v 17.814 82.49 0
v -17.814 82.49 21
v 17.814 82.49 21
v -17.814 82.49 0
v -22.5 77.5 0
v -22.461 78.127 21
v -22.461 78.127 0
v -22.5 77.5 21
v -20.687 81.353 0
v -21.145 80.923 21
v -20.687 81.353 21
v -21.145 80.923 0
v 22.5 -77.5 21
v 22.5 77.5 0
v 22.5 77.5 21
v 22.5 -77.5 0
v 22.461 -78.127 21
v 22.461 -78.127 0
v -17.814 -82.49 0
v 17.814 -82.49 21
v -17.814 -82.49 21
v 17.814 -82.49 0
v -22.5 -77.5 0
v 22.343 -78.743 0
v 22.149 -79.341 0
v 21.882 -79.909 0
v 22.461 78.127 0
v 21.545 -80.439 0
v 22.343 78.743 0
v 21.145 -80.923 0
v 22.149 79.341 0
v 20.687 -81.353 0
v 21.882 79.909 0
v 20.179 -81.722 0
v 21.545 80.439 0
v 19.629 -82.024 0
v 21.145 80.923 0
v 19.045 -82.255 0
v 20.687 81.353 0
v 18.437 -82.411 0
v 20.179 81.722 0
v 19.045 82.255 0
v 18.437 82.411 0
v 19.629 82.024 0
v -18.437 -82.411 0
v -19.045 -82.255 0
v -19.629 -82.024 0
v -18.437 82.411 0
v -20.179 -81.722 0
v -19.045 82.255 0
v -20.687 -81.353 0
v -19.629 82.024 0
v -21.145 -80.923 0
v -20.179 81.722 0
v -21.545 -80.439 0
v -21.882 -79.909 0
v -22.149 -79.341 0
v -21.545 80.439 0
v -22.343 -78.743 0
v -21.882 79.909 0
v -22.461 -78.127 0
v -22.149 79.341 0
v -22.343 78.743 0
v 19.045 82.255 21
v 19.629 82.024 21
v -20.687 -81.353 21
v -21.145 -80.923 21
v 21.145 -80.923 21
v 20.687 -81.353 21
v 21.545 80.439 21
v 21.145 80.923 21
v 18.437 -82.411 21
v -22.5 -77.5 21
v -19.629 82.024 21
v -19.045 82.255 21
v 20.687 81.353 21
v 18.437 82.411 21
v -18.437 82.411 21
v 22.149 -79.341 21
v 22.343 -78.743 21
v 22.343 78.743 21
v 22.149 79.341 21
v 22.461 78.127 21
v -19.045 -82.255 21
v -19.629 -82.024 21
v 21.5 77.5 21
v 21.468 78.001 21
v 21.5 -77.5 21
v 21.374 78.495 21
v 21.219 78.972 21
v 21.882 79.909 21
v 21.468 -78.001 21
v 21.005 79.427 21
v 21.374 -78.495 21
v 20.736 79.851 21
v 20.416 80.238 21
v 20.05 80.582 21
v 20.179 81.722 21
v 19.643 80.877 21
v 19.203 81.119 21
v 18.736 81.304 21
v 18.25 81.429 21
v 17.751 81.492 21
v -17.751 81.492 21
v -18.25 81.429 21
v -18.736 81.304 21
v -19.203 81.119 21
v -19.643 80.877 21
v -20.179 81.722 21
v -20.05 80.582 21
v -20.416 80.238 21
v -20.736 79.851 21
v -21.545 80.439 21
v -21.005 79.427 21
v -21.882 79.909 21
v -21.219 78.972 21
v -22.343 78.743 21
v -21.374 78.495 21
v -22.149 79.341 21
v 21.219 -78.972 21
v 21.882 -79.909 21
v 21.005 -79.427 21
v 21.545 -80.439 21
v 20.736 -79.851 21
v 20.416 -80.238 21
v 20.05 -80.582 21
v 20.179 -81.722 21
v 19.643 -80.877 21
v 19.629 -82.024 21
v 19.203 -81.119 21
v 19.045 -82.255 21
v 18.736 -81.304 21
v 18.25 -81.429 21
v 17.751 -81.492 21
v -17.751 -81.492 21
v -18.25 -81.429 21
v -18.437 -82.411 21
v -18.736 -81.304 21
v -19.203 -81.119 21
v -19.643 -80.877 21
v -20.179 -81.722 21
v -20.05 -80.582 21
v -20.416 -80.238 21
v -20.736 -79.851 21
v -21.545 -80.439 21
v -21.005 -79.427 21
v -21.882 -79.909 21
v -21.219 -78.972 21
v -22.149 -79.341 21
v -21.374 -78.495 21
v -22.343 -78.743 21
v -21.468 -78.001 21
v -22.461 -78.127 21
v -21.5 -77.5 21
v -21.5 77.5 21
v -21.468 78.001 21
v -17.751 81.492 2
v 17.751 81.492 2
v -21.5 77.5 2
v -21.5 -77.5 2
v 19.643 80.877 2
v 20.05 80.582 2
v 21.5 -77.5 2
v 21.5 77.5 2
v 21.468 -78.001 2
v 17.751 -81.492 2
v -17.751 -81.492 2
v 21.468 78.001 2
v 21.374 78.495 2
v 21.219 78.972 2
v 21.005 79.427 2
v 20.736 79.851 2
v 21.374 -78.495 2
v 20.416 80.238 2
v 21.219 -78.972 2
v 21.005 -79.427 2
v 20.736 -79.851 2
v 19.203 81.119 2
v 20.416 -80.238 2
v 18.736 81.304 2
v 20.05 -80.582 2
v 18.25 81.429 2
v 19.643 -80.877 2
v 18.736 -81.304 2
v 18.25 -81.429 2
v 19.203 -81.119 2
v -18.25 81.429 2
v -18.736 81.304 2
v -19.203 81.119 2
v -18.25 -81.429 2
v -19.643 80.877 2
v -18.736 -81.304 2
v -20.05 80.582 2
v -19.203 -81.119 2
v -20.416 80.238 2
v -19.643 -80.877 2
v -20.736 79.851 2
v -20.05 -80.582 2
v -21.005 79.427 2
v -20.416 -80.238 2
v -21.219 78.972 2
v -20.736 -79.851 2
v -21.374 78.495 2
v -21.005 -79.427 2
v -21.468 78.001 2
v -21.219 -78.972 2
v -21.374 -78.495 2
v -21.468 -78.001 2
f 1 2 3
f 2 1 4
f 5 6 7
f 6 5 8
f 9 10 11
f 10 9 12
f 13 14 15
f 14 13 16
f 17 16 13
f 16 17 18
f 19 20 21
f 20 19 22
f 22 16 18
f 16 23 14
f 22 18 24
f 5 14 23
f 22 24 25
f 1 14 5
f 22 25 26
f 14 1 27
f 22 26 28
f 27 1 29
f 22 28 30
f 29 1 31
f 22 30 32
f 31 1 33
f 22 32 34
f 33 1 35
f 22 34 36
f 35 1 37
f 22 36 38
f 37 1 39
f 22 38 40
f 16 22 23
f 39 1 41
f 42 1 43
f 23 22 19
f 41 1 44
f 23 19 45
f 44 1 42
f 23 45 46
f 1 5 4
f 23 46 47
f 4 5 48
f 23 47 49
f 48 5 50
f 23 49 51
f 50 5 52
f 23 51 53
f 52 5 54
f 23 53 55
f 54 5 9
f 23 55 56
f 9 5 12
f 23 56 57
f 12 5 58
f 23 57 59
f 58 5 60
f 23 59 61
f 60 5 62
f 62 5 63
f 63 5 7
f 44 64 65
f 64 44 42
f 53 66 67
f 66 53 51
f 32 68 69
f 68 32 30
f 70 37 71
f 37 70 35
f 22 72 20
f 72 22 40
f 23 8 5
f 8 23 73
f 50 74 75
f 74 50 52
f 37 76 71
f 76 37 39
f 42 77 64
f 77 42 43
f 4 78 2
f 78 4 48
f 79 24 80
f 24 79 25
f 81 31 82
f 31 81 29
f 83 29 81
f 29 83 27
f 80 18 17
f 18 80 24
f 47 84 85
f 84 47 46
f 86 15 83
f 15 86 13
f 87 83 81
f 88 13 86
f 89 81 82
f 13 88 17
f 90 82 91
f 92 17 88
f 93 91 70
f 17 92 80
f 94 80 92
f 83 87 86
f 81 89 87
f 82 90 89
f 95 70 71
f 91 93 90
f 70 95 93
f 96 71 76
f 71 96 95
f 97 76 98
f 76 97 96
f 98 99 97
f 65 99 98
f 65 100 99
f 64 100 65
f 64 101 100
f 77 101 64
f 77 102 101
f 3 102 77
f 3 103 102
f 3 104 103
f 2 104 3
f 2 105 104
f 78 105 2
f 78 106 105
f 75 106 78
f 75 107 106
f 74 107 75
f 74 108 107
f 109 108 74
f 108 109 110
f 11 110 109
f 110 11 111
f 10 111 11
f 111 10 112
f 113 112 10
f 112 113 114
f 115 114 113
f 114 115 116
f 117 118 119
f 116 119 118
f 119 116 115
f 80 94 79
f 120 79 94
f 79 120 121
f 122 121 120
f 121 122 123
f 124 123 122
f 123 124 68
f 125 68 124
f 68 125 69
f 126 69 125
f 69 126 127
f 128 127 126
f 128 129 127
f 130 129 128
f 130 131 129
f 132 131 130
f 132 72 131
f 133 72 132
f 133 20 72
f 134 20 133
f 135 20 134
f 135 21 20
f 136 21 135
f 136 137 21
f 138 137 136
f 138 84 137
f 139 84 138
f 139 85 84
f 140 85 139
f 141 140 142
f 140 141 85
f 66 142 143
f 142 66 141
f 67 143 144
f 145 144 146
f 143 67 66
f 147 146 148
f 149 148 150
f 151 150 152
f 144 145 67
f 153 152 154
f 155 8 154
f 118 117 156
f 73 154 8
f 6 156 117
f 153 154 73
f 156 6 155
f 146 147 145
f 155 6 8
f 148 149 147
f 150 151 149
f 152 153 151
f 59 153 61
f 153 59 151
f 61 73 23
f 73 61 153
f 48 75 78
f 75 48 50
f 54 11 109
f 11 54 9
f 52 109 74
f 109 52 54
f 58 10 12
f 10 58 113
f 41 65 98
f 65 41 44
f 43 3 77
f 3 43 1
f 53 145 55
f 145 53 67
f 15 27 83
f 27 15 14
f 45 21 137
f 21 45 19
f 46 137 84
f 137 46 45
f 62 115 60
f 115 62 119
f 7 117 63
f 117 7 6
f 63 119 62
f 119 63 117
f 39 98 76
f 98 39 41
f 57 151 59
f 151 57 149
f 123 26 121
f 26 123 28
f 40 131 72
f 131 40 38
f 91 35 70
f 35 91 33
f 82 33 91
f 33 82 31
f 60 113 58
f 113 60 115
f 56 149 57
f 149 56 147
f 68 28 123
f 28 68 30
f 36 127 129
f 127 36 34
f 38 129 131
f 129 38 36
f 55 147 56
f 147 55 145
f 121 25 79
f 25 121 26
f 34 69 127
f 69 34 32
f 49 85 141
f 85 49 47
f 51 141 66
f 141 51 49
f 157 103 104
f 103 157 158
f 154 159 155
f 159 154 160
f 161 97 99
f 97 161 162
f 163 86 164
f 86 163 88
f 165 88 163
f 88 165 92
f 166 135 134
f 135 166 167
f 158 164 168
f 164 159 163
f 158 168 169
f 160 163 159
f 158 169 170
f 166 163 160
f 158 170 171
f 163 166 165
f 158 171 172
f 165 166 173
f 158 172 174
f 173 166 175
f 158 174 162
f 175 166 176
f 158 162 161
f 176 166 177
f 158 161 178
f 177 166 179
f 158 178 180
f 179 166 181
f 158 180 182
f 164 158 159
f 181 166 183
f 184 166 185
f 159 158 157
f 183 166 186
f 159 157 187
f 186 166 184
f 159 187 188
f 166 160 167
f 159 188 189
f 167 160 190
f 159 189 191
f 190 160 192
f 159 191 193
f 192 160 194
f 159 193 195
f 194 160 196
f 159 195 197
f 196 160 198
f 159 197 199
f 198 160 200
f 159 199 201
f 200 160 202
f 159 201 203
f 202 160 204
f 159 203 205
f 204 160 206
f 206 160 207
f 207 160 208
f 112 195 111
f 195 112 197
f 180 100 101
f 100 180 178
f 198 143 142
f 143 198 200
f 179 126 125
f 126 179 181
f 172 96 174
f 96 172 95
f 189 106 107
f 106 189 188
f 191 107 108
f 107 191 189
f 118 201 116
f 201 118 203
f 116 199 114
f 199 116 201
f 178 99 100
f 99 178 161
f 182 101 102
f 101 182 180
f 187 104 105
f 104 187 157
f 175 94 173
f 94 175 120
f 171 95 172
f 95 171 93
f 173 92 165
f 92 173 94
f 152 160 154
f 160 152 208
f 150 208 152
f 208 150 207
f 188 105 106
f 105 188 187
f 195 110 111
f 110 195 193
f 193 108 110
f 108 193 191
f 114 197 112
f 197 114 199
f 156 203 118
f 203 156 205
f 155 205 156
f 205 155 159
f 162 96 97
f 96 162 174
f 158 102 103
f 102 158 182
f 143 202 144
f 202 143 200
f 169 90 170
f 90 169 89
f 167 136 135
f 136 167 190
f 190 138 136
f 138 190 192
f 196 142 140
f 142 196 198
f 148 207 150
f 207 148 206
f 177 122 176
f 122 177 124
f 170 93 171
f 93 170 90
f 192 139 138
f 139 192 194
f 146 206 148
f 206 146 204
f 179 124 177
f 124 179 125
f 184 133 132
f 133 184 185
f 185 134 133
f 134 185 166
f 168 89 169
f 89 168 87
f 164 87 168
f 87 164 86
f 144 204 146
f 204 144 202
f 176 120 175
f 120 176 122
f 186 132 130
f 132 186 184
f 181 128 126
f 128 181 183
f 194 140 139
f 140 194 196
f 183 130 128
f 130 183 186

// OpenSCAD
$fn = 50;


difference() {
	union() {
		hull() {
			translate(v = [-17.5000000000, 77.5000000000, 0]) {
				cylinder(h = 21, r = 5);
			}
			translate(v = [17.5000000000, 77.5000000000, 0]) {
				cylinder(h = 21, r = 5);
			}
			translate(v = [-17.5000000000, -77.5000000000, 0]) {
				cylinder(h = 21, r = 5);
			}
			translate(v = [17.5000000000, -77.5000000000, 0]) {
				cylinder(h = 21, r = 5);
			}
		}
	}
	union() {
		translate(v = [0, 0, 2]) {
			hull() {
				translate(v = [-17.5000000000, 77.5000000000, 0]) {
					cylinder(h = 19, r = 4);
				}
				translate(v = [17.5000000000, 77.5000000000, 0]) {
					cylinder(h = 19, r = 4);
				}
				translate(v = [-17.5000000000, -77.5000000000, 0]) {
					cylinder(h = 19, r = 4);
				}
				translate(v = [17.5000000000, -77.5000000000, 0]) {
					cylinder(h = 19, r = 4);
				}
			}
		}
	}
}
